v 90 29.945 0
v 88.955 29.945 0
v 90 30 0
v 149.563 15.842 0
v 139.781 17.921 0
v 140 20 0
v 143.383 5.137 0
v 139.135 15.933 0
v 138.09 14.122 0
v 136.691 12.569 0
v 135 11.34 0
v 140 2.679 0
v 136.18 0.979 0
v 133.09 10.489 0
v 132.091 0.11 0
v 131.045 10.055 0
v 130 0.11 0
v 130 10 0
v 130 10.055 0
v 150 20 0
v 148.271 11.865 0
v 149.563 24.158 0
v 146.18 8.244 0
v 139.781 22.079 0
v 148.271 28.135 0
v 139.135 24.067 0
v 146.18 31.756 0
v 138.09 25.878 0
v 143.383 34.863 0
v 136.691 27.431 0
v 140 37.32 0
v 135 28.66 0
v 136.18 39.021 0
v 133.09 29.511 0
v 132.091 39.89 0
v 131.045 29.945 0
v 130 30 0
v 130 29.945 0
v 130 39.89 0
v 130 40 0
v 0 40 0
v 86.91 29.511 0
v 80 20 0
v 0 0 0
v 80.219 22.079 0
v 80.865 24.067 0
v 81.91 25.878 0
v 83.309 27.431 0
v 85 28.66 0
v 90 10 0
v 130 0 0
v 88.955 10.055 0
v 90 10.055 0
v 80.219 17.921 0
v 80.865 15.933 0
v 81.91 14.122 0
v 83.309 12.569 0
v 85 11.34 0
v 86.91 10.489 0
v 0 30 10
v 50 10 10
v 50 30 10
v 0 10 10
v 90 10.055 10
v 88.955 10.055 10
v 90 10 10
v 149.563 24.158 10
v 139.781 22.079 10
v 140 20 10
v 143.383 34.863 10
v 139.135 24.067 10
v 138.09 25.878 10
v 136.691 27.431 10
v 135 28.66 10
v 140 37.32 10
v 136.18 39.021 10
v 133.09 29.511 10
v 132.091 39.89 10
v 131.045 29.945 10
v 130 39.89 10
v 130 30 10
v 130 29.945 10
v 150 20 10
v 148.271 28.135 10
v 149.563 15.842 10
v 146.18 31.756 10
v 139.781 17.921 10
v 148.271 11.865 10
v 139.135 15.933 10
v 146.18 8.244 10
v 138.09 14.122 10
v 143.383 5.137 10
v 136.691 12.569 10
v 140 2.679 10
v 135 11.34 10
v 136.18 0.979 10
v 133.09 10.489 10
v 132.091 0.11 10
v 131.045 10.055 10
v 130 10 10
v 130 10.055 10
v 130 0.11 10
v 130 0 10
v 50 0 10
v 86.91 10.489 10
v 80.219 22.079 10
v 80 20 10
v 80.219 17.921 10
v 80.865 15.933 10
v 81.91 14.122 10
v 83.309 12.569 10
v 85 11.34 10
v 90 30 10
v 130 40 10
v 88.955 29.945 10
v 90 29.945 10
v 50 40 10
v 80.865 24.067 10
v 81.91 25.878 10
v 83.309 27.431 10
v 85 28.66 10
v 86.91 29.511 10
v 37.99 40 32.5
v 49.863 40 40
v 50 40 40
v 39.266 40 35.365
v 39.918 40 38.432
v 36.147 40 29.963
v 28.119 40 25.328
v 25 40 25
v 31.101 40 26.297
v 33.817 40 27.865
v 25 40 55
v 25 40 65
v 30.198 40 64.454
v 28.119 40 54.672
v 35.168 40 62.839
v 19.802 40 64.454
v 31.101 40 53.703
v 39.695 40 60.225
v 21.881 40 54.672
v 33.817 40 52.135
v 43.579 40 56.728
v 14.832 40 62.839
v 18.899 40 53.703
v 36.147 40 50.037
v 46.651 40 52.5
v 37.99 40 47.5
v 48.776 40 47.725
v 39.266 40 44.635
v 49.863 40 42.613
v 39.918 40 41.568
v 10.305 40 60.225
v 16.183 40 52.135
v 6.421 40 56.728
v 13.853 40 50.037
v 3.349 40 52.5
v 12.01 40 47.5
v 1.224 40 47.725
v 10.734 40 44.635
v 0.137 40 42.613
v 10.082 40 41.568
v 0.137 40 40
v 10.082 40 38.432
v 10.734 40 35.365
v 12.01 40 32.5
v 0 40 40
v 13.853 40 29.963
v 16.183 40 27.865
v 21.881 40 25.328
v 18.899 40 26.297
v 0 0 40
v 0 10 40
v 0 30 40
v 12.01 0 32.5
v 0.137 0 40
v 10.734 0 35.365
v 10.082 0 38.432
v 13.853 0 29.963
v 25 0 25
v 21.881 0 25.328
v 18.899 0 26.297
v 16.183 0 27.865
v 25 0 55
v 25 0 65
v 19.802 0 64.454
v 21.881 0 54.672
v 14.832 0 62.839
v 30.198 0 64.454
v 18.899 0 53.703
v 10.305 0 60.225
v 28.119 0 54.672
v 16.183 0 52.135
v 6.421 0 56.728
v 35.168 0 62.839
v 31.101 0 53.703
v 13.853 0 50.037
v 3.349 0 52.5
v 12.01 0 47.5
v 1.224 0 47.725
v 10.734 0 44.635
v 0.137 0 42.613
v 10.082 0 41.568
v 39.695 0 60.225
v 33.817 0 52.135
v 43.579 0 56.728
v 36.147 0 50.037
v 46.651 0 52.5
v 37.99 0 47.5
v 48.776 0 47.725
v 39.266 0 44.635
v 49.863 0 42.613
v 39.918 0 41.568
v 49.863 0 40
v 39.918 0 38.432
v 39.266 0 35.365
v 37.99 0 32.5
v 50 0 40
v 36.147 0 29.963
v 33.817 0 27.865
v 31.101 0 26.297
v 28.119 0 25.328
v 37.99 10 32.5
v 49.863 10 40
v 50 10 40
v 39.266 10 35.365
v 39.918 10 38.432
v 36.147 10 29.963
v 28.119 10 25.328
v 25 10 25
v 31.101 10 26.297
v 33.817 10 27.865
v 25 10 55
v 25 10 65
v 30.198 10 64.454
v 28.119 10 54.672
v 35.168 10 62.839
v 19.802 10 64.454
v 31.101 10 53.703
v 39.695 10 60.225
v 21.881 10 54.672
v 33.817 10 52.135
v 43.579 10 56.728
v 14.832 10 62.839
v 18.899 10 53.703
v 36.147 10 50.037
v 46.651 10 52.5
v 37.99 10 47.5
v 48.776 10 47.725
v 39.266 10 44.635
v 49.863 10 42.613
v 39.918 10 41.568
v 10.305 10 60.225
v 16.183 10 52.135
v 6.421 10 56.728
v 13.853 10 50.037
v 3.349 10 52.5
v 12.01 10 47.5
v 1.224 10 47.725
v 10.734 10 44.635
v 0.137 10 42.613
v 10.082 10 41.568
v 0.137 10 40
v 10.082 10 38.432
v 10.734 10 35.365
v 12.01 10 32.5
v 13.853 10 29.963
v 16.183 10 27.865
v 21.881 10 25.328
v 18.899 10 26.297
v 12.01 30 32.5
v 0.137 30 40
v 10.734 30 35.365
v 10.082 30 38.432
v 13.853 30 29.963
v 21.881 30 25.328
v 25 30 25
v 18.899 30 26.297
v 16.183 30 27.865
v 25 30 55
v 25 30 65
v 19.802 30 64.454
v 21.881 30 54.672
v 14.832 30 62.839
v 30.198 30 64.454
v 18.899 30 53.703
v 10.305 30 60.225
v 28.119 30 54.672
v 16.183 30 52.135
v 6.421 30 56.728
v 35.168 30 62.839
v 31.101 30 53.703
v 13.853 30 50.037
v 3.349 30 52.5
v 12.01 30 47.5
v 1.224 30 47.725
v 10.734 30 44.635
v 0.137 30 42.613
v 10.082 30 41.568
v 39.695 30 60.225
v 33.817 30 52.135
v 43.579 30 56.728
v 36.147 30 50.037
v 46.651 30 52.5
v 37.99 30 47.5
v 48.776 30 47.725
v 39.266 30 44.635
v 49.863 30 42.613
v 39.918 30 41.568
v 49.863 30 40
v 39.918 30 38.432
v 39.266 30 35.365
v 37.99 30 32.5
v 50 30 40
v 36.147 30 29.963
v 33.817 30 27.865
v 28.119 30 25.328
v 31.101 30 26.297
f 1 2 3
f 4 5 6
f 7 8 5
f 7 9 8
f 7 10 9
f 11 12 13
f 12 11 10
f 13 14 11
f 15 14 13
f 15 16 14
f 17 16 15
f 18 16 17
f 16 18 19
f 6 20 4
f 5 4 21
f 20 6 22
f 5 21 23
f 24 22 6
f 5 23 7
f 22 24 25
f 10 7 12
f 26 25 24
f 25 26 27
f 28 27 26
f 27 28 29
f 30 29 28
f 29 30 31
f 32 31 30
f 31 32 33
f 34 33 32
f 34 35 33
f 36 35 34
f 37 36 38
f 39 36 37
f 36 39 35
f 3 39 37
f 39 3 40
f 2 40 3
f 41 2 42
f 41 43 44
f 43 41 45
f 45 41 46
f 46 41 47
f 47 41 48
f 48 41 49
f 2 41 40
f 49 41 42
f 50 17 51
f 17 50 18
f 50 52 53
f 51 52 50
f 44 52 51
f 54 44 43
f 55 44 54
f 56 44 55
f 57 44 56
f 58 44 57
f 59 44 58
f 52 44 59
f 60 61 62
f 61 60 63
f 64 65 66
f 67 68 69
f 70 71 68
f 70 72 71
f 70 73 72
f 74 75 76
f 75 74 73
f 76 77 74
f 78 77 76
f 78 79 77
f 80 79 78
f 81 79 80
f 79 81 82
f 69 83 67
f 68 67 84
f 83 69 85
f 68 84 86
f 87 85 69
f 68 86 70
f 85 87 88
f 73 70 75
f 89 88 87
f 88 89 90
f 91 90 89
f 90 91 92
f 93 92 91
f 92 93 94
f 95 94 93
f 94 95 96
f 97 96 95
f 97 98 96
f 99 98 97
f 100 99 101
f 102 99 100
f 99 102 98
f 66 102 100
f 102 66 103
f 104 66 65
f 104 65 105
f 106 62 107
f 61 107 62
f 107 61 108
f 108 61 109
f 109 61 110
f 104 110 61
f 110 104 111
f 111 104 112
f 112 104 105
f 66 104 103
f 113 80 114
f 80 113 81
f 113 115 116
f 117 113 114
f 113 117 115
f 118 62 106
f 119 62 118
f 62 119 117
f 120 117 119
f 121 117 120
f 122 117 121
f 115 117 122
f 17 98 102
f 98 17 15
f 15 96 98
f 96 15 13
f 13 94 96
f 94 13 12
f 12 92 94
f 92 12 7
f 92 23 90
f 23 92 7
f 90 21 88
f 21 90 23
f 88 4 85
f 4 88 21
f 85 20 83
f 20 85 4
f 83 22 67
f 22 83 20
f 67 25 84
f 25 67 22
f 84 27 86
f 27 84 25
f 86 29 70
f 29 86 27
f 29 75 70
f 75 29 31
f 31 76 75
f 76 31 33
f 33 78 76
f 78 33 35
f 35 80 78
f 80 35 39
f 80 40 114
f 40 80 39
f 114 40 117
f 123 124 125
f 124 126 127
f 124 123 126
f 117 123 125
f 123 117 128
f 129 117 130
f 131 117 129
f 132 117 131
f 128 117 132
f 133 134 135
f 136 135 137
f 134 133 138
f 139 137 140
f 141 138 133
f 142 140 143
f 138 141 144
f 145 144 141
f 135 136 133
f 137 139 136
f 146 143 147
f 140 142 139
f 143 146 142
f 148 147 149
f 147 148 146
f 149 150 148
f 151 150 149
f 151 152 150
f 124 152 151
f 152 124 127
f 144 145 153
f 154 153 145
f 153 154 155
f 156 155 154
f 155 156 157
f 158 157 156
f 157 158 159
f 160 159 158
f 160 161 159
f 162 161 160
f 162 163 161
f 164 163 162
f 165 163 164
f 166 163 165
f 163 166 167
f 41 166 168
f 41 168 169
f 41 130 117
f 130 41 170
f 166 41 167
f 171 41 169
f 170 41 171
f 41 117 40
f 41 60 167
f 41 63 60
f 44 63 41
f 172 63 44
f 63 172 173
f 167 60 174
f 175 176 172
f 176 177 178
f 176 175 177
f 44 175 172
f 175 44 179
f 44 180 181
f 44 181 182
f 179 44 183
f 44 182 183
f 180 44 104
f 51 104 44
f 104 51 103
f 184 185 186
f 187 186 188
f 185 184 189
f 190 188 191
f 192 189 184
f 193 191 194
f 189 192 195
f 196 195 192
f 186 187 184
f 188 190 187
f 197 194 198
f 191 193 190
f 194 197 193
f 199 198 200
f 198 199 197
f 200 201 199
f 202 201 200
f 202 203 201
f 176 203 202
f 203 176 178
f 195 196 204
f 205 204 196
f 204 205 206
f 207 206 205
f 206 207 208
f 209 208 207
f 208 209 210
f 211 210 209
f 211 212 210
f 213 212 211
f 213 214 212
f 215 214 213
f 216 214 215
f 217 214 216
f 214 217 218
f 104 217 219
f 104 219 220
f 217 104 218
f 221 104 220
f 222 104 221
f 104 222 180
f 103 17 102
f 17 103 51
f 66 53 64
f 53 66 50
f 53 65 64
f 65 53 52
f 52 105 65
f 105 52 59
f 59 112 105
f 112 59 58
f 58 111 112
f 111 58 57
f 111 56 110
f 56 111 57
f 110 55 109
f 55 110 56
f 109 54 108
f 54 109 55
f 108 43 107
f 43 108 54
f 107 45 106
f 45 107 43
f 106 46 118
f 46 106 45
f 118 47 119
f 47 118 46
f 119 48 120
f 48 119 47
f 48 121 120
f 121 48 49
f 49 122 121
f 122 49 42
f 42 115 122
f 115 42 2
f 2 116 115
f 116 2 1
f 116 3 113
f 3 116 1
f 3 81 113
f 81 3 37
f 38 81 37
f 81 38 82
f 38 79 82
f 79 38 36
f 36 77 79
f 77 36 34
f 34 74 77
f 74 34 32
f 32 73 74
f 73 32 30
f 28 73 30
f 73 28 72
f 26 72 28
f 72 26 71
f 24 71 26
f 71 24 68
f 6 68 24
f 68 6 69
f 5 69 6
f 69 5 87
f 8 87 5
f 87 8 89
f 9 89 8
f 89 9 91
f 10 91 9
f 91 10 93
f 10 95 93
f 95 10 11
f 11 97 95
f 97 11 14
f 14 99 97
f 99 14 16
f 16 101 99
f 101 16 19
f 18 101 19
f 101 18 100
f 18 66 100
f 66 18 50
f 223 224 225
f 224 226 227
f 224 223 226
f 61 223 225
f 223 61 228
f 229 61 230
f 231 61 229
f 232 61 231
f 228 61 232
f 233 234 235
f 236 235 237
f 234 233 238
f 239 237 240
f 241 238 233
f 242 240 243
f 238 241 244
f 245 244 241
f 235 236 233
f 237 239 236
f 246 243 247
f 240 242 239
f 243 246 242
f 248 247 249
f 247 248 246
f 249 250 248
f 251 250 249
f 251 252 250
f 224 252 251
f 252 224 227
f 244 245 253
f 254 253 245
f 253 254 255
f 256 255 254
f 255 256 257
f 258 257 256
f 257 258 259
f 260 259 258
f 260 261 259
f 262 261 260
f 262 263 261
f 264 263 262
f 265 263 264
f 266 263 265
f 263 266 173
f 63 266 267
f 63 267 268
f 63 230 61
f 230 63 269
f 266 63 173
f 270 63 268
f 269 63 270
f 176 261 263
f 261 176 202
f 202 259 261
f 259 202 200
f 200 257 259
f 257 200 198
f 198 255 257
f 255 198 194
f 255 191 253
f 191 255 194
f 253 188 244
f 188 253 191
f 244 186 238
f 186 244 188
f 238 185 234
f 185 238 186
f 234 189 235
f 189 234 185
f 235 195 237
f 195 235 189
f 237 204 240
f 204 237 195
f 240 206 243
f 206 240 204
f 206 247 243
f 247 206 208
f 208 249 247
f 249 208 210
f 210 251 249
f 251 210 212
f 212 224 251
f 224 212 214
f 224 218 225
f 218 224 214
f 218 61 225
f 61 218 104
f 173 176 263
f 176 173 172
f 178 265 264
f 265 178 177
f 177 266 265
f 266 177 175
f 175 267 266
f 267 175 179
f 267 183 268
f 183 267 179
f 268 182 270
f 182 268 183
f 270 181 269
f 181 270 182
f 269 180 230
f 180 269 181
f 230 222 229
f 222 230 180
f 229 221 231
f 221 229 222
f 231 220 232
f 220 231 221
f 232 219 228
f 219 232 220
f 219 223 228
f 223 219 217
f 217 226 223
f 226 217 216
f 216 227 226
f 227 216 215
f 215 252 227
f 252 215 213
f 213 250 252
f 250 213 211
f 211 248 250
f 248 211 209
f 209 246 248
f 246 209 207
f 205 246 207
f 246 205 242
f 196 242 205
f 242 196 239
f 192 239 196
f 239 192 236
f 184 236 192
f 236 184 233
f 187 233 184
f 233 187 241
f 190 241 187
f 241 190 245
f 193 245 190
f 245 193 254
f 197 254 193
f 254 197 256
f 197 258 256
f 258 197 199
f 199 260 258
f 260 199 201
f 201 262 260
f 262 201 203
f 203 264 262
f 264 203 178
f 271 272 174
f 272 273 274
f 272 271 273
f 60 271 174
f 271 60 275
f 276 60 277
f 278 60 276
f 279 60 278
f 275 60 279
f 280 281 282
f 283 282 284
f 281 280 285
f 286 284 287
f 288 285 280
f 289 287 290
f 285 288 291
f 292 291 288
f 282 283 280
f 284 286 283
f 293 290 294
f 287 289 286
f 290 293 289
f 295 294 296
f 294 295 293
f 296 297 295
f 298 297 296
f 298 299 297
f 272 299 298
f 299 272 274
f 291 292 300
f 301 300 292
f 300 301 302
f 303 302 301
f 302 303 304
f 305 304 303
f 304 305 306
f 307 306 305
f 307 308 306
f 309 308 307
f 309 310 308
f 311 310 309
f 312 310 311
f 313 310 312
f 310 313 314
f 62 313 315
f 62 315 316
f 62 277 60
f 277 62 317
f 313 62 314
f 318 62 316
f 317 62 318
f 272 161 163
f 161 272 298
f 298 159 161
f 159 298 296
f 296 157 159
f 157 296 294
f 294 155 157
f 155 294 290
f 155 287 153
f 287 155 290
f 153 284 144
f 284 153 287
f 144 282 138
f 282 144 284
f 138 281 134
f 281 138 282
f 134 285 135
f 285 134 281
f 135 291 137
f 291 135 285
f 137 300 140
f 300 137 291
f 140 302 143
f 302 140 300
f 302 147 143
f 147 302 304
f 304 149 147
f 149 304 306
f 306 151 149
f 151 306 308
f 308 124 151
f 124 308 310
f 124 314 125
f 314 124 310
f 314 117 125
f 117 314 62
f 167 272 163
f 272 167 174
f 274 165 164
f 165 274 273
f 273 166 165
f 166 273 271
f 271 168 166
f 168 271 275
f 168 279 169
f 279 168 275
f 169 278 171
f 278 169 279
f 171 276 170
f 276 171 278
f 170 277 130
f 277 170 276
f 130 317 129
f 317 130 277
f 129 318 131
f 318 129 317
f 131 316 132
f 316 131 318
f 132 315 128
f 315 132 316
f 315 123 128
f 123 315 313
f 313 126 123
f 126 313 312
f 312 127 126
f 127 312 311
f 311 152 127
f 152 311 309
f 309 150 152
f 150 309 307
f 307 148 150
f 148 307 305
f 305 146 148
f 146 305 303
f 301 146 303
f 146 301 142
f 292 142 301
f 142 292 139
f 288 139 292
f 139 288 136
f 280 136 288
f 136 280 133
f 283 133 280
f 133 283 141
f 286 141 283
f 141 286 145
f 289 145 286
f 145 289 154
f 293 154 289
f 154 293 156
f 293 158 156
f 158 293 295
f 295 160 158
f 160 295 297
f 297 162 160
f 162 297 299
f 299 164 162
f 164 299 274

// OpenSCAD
// create into module from the code in ex_003
module plate_with_round_hole(width, height, big_circle, small_circle, circle_center_offset) {
    difference() {
        union() {
            square([height,width]);
            translate([circle_center_offset, width / 2]) circle(big_circle);
        }
        translate([circle_center_offset, width / 2]) circle(small_circle);
    }
}

// extend above module for long hole
module plate_with_long_hole(width, height, big_circle, small_circle, circle_center_offset, inner_length) {
    difference() {
        union() {
            square([height,width]);
            translate([circle_center_offset, width / 2]) circle(big_circle);
        }
        translate([circle_center_offset, width / 2]) circle(small_circle);
        translate([circle_center_offset - inner_length, width / 2]) circle(small_circle);
        translate([circle_center_offset - inner_length, big_circle - small_circle]) square([inner_length, small_circle * 2]);
    }
}

linear_extrude(10)
    plate_with_long_hole(40, 130, 20, 10, 130, 40);

rotate([0, -90, -90])
    linear_extrude(10)
        plate_with_round_hole(50, 40, 25, 15, 40);

translate([0, 30, 0 ])
    rotate([0, -90, -90])
        linear_extrude(10)
            plate_with_round_hole(50, 40, 25, 15, 40);
